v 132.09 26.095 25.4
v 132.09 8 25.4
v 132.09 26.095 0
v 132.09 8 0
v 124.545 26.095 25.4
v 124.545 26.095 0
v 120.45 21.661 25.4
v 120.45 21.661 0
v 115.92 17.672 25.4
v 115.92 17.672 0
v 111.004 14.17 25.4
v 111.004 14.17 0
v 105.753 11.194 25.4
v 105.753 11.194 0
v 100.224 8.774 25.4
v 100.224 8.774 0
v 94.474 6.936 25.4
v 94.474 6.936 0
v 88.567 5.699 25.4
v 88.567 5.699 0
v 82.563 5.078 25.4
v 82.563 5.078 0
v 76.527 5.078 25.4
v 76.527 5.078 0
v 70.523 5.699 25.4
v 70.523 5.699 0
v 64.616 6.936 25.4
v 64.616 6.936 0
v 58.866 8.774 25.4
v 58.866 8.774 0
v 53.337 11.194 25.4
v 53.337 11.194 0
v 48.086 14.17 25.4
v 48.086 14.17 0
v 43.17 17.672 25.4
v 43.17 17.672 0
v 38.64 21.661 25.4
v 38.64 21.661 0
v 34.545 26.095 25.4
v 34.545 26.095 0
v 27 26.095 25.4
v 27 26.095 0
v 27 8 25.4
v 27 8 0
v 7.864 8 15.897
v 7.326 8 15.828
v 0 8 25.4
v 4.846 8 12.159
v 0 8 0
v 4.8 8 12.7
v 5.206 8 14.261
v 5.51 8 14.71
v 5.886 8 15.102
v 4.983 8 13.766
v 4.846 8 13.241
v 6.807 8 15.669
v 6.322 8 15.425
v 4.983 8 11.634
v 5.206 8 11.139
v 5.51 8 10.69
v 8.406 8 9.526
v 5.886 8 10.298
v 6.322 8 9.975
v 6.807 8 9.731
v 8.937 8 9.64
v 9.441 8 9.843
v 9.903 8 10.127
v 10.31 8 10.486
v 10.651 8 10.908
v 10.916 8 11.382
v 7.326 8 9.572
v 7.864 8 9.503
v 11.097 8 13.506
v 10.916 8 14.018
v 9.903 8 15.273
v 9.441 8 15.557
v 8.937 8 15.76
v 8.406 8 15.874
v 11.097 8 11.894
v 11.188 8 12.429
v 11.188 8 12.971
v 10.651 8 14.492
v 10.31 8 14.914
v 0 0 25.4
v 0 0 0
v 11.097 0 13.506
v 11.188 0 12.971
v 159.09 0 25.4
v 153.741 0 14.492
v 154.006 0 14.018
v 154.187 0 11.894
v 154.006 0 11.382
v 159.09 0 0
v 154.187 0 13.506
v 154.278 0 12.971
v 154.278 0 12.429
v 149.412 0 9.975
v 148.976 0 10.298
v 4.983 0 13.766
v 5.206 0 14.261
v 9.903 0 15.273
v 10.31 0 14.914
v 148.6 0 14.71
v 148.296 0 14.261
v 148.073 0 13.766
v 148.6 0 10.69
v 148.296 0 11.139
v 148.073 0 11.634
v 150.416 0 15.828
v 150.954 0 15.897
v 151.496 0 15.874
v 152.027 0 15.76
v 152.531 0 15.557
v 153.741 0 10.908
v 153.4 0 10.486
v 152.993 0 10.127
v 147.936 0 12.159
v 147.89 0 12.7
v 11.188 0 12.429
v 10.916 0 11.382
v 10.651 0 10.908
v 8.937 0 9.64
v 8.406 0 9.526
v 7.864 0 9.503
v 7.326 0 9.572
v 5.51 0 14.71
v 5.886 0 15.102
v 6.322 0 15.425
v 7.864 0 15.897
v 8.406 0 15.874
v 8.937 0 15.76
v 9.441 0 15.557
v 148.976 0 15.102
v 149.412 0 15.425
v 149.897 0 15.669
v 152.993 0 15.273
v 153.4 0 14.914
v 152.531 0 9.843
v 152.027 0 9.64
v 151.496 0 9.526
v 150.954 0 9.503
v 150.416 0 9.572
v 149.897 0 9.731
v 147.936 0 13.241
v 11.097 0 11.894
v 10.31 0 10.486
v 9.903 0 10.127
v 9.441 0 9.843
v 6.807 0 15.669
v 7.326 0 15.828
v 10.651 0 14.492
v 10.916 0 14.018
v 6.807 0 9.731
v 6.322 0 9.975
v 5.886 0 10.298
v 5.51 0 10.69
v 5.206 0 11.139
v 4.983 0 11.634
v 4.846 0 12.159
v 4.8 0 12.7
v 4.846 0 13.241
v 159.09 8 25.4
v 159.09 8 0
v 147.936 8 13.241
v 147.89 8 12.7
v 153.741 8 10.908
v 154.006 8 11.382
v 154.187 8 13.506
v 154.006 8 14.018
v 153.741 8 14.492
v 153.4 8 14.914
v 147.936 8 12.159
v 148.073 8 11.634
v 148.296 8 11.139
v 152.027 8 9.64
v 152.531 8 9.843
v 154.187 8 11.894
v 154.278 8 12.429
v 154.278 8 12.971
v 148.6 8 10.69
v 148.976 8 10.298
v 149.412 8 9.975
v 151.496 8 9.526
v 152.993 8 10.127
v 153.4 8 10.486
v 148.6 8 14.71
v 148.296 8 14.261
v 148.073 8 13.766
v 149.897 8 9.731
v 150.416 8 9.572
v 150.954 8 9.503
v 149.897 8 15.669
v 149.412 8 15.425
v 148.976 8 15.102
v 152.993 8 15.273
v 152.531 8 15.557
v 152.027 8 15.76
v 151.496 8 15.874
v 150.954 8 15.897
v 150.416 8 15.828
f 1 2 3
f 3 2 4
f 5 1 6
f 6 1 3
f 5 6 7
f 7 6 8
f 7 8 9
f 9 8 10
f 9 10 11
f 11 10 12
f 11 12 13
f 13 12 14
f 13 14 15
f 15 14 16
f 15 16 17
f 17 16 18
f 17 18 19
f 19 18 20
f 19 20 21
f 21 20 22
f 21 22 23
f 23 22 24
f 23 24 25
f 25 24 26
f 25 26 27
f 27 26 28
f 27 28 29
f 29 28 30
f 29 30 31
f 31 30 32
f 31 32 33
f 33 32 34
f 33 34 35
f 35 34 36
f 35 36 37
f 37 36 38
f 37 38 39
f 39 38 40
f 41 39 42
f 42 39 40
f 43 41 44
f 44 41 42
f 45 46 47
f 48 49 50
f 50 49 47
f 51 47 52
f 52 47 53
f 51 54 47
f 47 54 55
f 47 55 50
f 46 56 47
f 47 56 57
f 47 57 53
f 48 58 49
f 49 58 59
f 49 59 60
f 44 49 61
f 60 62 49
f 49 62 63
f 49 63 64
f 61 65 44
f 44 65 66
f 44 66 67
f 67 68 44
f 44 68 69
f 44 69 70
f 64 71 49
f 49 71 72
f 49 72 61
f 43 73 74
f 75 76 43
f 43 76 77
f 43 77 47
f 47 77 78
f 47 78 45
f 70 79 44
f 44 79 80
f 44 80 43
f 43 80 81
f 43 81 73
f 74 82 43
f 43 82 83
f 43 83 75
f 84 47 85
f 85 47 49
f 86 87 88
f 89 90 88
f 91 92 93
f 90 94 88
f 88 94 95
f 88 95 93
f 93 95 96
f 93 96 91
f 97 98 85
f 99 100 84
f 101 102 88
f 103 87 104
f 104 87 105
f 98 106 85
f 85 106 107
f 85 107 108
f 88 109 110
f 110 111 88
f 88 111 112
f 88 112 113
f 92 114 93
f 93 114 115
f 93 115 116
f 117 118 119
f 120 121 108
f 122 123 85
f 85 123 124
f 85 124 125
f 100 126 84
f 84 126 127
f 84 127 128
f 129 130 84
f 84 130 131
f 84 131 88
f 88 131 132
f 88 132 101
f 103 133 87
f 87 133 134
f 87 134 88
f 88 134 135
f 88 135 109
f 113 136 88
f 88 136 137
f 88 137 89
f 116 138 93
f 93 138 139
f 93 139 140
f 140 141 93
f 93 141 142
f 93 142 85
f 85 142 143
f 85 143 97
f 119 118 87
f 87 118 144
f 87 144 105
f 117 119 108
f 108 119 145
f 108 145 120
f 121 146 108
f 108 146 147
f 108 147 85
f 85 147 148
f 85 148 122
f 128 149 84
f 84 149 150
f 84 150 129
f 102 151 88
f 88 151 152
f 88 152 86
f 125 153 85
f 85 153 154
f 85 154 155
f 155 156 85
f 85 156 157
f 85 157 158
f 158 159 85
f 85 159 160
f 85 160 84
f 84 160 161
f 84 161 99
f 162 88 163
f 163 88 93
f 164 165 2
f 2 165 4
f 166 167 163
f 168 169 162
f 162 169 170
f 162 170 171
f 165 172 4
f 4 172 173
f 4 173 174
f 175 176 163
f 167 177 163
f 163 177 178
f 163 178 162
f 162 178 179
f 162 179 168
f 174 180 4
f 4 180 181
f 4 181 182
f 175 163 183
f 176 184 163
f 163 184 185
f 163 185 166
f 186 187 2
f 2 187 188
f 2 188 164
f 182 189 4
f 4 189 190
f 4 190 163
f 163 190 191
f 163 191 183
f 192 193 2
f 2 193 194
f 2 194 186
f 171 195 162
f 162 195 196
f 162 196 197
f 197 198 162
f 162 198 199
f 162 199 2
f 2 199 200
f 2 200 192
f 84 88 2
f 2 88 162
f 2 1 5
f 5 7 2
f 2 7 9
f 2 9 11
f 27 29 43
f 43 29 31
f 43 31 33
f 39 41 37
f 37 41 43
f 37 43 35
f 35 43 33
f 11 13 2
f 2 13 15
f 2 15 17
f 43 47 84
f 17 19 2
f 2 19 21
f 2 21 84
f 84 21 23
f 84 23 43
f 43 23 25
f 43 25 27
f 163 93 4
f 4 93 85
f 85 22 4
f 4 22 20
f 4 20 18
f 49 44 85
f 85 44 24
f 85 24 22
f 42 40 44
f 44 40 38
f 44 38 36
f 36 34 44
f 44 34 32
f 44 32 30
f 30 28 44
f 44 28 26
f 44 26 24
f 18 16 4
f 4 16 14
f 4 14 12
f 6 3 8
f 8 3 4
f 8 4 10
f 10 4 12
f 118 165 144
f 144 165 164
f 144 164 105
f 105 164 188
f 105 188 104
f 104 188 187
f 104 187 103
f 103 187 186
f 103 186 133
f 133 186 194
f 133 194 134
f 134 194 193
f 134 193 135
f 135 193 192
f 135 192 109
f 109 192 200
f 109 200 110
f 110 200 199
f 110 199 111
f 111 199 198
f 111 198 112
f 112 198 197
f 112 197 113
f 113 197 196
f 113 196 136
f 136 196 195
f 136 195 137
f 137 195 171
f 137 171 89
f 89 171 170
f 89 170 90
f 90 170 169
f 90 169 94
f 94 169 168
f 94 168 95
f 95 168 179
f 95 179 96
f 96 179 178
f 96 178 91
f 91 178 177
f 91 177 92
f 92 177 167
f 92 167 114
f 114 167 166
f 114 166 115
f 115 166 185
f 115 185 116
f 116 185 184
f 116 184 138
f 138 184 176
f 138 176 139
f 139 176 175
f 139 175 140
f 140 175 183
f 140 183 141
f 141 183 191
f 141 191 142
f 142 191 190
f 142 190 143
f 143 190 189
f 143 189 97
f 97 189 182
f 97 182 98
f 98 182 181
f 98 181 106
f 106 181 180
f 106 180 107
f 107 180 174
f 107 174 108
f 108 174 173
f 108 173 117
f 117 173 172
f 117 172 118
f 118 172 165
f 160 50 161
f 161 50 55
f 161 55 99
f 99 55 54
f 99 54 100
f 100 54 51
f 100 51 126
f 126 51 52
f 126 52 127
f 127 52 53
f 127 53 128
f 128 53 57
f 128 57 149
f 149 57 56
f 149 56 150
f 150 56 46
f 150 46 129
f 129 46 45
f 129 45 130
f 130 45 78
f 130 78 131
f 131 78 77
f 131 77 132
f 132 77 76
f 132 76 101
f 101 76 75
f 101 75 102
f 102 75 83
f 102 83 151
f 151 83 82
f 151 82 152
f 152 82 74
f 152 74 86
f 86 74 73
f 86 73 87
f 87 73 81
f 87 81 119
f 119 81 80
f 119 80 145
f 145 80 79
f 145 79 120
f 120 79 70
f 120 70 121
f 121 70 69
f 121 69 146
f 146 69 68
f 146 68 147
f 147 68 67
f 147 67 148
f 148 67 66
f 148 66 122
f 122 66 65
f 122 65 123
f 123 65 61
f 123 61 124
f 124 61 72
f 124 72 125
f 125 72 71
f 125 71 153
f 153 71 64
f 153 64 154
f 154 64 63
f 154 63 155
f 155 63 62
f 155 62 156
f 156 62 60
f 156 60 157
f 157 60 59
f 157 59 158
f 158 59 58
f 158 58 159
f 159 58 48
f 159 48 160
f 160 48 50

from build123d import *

# Parameters (mm, degrees)
BOSS_EXTRUDE1_DEPTH = 25.4
SKETCH2_R           = 3.2
CUT_EXTRUDE1_DEPTH  = 9


with BuildPart() as part:
    # Sketch1 → Boss-Extrude1 (new body)
    with BuildSketch(Plane.XY):
        with BuildLine():
            Line((124.545, 26.094806075), (132.09, 26.094806075))
            Line((132.09, 26.094806075), (132.09, 8))
            Line((132.09, 8), (159.09, 8))
            Line((159.09, 8), (159.09, 0))
            Line((159.09, 0), (0, 0))
            Line((0, 0), (0, 8))
            Line((0, 8), (27, 8))
            Line((27, 8), (27, 26.094806075))
            Line((27, 26.094806075), (34.545, 26.094806075))
            ThreePointArc((34.545, 26.094806075), (79.545, 5), (124.545, 26.094806075))
        make_face()
    extrude(amount=BOSS_EXTRUDE1_DEPTH)

    # Sketch2 → Cut-Extrude1 (cut, through all)
    with BuildSketch(Plane(origin=(0, 8, 0), x_dir=(1, 0, 0), z_dir=(0, 1, 0))):
        with Locations((8, -12.7)):
            Circle(SKETCH2_R)
        with Locations((151.09, -12.7)):
            Circle(SKETCH2_R)
    extrude(amount=-CUT_EXTRUDE1_DEPTH, mode=Mode.SUBTRACT)


solid = part.part
